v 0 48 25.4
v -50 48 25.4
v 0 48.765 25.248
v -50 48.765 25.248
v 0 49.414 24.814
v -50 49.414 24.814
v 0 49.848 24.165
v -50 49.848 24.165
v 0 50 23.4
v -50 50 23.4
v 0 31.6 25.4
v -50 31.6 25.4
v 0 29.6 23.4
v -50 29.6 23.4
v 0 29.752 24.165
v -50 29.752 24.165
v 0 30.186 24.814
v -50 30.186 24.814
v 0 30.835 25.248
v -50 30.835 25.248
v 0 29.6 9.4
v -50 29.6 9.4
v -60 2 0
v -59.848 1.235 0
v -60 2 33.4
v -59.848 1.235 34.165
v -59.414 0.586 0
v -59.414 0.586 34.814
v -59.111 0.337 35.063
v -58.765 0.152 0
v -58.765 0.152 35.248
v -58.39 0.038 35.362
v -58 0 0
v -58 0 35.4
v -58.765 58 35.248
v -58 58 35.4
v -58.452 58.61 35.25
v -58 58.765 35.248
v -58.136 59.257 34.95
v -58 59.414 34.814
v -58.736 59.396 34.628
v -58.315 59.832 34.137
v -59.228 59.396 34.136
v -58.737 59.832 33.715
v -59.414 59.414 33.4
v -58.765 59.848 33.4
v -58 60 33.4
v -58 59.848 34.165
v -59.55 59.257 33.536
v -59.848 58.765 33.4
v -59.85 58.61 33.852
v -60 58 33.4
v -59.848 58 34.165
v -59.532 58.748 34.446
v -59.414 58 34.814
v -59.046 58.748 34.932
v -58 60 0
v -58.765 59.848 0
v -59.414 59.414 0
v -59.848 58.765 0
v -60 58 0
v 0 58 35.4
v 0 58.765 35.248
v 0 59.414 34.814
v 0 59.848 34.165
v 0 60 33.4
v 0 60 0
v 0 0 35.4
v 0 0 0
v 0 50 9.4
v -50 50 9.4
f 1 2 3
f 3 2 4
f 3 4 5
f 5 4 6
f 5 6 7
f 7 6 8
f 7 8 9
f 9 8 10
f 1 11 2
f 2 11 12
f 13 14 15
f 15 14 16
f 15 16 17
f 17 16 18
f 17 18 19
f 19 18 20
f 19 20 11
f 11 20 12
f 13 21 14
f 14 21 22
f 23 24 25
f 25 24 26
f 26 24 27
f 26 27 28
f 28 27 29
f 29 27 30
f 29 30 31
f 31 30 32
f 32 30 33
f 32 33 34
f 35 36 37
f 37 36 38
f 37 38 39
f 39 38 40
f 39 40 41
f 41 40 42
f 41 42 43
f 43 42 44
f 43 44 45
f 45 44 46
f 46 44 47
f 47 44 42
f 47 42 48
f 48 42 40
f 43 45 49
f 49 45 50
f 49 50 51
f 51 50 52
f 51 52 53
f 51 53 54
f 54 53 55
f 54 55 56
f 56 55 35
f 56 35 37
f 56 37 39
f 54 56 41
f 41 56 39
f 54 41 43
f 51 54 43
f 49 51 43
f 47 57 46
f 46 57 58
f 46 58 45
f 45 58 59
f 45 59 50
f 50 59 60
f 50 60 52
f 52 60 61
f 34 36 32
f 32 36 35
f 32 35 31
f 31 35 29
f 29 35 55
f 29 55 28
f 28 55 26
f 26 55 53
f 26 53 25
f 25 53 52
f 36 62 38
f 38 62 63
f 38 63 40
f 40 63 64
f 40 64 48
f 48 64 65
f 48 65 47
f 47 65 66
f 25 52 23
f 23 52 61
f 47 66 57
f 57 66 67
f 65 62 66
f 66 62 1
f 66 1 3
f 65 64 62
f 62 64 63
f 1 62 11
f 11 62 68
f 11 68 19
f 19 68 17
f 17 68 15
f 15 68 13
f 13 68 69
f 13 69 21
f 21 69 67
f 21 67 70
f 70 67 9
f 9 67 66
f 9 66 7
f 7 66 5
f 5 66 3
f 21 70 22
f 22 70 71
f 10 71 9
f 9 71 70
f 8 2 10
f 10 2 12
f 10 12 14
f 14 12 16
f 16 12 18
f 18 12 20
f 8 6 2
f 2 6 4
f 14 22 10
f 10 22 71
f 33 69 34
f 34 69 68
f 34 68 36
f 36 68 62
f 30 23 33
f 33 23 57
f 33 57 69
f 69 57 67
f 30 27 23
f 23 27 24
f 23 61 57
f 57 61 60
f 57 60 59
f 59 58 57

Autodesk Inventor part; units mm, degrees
ref_plane "YZ Plane" through (0, 0, 0) normal (1, 0, 0) x (0, 1, 0)
ref_plane "XZ Plane" through (0, 0, 0) normal (0, 1, 0) x (-1, 0, 0)
ref_plane "XY Plane" through (0, 0, 0) normal (0, 0, 1) x (1, 0, 0)
sketch "Sketch5" plane through (0, 0, 0) normal (0, 0, 1) x (1, 0, 0)
  line L0 (0, 0) -> (-60, 0)
  line L1 (-60, 0) -> (-60, 60)
  line L2 (-60, 60) -> (0, 60)
  line L3 (0, 60) -> (0, 0)
  dimension "d55" = 60
  dimension "d56" = 60
extrude "Extrusion4" add sketch "Sketch5" along normal blind 35.4
sketch "Sketch6" plane through (0, 0, 0) normal (1, 0, 0) x (0, 0, -1)
  line L0 (-35.4, 60) -> (-35.4, 0) projected
  line L1 (-35.4, 60) -> (-25.4, 60)
  line L2 (-25.4, 60) -> (-25.4, 50)
  line L3 (-25.4, 50) -> (-35.4, 50)
  line L4 (-35.4, 50) -> (-35.4, 60)
  line L5 (-25.4, 50) -> (-9.4, 50)
  line L6 (-9.4, 50) -> (-9.4, 29.6)
  line L7 (-9.4, 29.6) -> (-25.4, 29.6)
  line L8 (-25.4, 29.6) -> (-25.4, 50)
  point P0 (0, 0)
  dimension "d61" = 10
  dimension "d62" = 10
  dimension "d65" = 16
  dimension "d66" = 20.4
extrude "Extrusion5" cut sketch "Sketch6" against normal blind 50 contours L5 L6 L7 L8
fillet "Fillet5" radius 2 6 edges at (-30, 60, 35.4) (-25, 29.6, 25.4) (-25, 50, 25.4) (-60, 30, 35.4) (-60, 0, 17.7) (-60, 60, 17.7)
properties part number "Clasp"
